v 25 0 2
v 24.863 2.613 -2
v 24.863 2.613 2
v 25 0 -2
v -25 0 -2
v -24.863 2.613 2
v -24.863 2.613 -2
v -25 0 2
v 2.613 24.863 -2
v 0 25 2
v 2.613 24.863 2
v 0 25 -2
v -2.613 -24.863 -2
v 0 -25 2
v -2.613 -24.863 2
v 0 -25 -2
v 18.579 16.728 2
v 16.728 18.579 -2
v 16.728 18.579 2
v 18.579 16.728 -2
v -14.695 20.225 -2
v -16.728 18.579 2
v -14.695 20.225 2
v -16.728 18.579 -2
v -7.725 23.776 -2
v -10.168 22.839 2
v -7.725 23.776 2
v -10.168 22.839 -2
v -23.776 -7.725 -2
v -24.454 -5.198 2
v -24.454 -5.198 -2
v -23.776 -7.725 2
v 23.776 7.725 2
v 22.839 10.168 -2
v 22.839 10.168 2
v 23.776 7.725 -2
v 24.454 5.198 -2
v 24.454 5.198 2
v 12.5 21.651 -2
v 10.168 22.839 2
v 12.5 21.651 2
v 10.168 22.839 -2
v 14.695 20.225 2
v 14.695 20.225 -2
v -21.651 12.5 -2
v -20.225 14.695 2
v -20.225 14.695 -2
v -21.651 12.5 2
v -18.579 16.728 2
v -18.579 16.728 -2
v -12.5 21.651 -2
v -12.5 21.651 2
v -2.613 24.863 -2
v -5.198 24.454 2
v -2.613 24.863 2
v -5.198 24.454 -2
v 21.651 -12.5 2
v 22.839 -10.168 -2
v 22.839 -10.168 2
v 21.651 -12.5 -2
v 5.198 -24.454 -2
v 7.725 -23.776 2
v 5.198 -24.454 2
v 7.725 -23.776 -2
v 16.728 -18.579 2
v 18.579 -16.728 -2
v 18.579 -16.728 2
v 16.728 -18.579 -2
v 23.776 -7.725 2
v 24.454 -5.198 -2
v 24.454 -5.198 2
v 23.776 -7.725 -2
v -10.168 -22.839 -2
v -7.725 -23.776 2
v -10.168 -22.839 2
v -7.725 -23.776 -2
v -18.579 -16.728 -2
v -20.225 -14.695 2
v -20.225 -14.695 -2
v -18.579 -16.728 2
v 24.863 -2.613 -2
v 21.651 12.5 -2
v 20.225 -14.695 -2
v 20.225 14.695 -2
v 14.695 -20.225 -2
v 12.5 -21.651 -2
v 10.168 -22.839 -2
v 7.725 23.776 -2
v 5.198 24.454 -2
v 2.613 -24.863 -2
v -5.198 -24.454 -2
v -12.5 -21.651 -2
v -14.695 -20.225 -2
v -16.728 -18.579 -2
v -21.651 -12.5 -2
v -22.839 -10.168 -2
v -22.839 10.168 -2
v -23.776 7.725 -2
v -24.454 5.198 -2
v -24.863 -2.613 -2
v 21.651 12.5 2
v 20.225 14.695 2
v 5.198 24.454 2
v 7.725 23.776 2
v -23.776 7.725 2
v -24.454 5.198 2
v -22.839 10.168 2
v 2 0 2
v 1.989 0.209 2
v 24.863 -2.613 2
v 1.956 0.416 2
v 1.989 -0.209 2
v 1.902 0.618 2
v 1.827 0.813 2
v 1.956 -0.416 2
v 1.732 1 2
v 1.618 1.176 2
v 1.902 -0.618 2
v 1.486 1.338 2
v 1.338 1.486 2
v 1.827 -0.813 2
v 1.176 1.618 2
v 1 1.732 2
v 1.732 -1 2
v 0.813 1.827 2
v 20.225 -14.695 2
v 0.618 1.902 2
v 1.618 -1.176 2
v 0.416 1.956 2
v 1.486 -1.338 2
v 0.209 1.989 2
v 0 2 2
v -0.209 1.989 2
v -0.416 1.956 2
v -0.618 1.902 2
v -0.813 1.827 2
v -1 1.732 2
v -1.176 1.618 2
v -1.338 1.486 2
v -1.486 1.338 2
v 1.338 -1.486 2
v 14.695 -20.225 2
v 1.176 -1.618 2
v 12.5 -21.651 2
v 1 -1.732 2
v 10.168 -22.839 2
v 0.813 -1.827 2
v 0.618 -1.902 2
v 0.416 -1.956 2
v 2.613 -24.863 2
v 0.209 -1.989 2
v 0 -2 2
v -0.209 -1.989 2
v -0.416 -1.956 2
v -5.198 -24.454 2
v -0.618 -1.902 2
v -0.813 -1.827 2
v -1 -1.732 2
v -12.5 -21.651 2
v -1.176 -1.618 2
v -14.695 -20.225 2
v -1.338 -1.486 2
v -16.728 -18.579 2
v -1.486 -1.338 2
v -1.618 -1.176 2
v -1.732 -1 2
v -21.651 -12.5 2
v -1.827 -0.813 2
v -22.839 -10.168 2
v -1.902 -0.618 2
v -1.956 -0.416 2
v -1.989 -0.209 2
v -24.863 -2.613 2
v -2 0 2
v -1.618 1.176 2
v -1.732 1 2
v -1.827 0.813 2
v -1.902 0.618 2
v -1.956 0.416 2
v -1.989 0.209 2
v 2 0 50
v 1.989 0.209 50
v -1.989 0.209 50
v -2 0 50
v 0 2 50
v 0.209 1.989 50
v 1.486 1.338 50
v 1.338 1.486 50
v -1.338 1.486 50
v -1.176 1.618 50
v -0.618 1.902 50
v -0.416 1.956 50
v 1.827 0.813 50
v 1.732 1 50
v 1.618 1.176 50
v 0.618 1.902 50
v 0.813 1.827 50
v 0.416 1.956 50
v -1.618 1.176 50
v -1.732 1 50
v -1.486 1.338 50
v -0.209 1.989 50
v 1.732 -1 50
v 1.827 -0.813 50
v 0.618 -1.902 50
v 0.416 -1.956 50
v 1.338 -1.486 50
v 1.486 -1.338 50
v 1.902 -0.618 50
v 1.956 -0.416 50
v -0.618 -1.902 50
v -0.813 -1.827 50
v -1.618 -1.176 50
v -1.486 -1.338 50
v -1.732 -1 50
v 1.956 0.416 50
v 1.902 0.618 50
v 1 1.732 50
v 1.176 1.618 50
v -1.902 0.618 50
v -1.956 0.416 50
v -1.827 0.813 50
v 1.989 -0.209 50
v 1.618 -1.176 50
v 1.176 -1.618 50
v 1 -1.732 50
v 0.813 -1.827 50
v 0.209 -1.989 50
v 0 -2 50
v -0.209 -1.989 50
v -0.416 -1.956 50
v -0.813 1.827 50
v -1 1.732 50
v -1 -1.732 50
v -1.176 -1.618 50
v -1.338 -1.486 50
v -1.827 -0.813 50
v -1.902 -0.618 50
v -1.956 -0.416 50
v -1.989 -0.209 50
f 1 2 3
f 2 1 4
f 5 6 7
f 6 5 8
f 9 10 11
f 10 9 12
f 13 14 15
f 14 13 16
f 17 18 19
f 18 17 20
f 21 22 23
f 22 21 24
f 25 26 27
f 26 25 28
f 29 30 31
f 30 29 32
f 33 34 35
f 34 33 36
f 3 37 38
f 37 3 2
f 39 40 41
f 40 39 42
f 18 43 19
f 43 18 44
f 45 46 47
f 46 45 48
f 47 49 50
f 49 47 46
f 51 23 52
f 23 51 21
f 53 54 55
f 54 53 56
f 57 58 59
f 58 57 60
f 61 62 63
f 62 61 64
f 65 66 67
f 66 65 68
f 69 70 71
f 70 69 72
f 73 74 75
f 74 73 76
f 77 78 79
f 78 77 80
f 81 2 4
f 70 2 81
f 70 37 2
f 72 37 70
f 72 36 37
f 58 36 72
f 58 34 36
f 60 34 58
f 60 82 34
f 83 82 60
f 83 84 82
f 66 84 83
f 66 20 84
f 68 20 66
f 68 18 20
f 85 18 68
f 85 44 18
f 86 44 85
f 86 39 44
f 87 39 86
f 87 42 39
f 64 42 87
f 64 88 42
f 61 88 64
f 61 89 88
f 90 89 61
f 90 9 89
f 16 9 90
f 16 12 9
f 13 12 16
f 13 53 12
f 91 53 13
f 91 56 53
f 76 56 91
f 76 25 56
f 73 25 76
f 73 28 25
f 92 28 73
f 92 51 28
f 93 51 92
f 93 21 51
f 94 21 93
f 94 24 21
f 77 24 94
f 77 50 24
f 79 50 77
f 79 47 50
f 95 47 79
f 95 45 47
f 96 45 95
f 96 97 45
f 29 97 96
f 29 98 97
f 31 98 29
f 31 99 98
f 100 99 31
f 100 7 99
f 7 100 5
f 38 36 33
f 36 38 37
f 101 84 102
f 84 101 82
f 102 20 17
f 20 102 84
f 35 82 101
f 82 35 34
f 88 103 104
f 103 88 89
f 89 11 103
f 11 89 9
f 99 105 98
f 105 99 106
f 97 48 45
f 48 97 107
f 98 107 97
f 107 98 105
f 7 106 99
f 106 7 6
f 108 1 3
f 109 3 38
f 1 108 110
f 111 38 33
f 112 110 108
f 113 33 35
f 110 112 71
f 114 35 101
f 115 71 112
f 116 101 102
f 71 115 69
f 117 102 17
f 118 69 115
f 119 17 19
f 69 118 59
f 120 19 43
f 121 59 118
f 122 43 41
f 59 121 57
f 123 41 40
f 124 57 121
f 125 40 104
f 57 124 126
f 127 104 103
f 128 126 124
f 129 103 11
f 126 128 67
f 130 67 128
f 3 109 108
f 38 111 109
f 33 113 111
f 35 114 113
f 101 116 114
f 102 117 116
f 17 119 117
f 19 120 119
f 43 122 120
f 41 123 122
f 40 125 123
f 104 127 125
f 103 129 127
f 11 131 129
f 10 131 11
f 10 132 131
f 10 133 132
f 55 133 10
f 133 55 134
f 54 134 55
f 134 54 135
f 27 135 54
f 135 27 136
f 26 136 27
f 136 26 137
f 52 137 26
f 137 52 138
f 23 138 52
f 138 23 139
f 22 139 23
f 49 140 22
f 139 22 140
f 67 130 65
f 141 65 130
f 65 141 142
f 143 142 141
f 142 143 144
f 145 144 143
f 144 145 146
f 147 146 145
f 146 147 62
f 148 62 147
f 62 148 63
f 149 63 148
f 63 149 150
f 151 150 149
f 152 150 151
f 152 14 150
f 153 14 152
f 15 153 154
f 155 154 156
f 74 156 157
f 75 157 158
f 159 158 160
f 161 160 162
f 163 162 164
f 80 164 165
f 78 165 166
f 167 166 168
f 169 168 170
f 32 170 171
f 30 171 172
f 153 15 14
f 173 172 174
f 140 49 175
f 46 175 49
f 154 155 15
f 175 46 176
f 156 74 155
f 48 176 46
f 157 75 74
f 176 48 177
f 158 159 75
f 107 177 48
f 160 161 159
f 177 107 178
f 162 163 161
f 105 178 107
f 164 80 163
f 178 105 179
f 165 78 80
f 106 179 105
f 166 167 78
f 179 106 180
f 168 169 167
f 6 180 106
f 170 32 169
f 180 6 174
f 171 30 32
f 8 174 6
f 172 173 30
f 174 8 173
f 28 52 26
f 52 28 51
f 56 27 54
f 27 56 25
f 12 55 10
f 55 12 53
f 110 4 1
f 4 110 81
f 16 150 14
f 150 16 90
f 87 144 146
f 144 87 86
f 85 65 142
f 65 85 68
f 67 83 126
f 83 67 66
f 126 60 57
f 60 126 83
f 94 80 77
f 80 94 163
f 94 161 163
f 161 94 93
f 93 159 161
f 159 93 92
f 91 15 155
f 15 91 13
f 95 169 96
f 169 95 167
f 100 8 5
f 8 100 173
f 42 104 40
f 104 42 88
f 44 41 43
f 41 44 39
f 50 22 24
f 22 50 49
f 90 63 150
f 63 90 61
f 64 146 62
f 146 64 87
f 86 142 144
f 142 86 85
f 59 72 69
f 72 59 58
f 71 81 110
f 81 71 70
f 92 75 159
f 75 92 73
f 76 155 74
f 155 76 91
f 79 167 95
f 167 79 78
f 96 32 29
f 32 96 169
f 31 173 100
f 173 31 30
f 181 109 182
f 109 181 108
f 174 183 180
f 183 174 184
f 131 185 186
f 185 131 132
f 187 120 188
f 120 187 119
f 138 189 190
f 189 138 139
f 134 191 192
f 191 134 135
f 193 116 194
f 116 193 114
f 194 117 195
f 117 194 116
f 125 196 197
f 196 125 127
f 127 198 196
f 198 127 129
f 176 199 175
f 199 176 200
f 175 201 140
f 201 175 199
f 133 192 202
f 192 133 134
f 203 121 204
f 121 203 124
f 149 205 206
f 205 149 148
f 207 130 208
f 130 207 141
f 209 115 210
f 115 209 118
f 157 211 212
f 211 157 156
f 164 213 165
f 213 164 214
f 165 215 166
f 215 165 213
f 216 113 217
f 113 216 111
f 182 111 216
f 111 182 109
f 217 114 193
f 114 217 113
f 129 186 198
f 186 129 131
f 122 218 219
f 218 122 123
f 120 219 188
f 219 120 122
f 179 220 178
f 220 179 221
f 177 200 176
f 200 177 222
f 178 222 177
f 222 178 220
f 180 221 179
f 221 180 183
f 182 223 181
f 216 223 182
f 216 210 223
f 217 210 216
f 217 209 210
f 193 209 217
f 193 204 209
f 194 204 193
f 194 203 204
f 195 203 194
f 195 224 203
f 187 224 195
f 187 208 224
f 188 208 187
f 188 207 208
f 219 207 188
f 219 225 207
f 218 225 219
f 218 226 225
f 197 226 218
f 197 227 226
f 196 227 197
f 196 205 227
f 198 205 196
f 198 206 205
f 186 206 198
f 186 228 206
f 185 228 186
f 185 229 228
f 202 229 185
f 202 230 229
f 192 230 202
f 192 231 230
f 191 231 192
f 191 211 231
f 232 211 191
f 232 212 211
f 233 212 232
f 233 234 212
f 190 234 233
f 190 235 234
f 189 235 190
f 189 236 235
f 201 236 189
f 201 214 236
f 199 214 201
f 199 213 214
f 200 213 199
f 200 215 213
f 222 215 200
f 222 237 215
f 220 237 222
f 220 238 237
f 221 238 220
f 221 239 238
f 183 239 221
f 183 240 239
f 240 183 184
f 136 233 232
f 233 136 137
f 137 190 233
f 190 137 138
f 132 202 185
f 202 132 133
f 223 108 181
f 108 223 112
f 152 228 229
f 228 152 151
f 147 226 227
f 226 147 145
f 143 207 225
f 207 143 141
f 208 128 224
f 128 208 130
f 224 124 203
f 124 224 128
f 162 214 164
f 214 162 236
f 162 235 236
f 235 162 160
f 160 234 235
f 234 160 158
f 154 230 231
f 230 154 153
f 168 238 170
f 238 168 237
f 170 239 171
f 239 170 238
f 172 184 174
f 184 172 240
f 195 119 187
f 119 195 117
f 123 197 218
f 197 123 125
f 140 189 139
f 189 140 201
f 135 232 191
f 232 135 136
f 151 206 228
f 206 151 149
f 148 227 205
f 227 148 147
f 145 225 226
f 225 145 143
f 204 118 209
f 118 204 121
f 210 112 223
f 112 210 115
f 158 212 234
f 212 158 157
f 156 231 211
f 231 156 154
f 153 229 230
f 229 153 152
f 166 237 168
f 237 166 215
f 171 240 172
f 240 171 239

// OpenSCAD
$fn=60;

cylinder(d=50,h=4,center=true);

translate([0,0,25])
cylinder(d=4,h=50,center=true);
